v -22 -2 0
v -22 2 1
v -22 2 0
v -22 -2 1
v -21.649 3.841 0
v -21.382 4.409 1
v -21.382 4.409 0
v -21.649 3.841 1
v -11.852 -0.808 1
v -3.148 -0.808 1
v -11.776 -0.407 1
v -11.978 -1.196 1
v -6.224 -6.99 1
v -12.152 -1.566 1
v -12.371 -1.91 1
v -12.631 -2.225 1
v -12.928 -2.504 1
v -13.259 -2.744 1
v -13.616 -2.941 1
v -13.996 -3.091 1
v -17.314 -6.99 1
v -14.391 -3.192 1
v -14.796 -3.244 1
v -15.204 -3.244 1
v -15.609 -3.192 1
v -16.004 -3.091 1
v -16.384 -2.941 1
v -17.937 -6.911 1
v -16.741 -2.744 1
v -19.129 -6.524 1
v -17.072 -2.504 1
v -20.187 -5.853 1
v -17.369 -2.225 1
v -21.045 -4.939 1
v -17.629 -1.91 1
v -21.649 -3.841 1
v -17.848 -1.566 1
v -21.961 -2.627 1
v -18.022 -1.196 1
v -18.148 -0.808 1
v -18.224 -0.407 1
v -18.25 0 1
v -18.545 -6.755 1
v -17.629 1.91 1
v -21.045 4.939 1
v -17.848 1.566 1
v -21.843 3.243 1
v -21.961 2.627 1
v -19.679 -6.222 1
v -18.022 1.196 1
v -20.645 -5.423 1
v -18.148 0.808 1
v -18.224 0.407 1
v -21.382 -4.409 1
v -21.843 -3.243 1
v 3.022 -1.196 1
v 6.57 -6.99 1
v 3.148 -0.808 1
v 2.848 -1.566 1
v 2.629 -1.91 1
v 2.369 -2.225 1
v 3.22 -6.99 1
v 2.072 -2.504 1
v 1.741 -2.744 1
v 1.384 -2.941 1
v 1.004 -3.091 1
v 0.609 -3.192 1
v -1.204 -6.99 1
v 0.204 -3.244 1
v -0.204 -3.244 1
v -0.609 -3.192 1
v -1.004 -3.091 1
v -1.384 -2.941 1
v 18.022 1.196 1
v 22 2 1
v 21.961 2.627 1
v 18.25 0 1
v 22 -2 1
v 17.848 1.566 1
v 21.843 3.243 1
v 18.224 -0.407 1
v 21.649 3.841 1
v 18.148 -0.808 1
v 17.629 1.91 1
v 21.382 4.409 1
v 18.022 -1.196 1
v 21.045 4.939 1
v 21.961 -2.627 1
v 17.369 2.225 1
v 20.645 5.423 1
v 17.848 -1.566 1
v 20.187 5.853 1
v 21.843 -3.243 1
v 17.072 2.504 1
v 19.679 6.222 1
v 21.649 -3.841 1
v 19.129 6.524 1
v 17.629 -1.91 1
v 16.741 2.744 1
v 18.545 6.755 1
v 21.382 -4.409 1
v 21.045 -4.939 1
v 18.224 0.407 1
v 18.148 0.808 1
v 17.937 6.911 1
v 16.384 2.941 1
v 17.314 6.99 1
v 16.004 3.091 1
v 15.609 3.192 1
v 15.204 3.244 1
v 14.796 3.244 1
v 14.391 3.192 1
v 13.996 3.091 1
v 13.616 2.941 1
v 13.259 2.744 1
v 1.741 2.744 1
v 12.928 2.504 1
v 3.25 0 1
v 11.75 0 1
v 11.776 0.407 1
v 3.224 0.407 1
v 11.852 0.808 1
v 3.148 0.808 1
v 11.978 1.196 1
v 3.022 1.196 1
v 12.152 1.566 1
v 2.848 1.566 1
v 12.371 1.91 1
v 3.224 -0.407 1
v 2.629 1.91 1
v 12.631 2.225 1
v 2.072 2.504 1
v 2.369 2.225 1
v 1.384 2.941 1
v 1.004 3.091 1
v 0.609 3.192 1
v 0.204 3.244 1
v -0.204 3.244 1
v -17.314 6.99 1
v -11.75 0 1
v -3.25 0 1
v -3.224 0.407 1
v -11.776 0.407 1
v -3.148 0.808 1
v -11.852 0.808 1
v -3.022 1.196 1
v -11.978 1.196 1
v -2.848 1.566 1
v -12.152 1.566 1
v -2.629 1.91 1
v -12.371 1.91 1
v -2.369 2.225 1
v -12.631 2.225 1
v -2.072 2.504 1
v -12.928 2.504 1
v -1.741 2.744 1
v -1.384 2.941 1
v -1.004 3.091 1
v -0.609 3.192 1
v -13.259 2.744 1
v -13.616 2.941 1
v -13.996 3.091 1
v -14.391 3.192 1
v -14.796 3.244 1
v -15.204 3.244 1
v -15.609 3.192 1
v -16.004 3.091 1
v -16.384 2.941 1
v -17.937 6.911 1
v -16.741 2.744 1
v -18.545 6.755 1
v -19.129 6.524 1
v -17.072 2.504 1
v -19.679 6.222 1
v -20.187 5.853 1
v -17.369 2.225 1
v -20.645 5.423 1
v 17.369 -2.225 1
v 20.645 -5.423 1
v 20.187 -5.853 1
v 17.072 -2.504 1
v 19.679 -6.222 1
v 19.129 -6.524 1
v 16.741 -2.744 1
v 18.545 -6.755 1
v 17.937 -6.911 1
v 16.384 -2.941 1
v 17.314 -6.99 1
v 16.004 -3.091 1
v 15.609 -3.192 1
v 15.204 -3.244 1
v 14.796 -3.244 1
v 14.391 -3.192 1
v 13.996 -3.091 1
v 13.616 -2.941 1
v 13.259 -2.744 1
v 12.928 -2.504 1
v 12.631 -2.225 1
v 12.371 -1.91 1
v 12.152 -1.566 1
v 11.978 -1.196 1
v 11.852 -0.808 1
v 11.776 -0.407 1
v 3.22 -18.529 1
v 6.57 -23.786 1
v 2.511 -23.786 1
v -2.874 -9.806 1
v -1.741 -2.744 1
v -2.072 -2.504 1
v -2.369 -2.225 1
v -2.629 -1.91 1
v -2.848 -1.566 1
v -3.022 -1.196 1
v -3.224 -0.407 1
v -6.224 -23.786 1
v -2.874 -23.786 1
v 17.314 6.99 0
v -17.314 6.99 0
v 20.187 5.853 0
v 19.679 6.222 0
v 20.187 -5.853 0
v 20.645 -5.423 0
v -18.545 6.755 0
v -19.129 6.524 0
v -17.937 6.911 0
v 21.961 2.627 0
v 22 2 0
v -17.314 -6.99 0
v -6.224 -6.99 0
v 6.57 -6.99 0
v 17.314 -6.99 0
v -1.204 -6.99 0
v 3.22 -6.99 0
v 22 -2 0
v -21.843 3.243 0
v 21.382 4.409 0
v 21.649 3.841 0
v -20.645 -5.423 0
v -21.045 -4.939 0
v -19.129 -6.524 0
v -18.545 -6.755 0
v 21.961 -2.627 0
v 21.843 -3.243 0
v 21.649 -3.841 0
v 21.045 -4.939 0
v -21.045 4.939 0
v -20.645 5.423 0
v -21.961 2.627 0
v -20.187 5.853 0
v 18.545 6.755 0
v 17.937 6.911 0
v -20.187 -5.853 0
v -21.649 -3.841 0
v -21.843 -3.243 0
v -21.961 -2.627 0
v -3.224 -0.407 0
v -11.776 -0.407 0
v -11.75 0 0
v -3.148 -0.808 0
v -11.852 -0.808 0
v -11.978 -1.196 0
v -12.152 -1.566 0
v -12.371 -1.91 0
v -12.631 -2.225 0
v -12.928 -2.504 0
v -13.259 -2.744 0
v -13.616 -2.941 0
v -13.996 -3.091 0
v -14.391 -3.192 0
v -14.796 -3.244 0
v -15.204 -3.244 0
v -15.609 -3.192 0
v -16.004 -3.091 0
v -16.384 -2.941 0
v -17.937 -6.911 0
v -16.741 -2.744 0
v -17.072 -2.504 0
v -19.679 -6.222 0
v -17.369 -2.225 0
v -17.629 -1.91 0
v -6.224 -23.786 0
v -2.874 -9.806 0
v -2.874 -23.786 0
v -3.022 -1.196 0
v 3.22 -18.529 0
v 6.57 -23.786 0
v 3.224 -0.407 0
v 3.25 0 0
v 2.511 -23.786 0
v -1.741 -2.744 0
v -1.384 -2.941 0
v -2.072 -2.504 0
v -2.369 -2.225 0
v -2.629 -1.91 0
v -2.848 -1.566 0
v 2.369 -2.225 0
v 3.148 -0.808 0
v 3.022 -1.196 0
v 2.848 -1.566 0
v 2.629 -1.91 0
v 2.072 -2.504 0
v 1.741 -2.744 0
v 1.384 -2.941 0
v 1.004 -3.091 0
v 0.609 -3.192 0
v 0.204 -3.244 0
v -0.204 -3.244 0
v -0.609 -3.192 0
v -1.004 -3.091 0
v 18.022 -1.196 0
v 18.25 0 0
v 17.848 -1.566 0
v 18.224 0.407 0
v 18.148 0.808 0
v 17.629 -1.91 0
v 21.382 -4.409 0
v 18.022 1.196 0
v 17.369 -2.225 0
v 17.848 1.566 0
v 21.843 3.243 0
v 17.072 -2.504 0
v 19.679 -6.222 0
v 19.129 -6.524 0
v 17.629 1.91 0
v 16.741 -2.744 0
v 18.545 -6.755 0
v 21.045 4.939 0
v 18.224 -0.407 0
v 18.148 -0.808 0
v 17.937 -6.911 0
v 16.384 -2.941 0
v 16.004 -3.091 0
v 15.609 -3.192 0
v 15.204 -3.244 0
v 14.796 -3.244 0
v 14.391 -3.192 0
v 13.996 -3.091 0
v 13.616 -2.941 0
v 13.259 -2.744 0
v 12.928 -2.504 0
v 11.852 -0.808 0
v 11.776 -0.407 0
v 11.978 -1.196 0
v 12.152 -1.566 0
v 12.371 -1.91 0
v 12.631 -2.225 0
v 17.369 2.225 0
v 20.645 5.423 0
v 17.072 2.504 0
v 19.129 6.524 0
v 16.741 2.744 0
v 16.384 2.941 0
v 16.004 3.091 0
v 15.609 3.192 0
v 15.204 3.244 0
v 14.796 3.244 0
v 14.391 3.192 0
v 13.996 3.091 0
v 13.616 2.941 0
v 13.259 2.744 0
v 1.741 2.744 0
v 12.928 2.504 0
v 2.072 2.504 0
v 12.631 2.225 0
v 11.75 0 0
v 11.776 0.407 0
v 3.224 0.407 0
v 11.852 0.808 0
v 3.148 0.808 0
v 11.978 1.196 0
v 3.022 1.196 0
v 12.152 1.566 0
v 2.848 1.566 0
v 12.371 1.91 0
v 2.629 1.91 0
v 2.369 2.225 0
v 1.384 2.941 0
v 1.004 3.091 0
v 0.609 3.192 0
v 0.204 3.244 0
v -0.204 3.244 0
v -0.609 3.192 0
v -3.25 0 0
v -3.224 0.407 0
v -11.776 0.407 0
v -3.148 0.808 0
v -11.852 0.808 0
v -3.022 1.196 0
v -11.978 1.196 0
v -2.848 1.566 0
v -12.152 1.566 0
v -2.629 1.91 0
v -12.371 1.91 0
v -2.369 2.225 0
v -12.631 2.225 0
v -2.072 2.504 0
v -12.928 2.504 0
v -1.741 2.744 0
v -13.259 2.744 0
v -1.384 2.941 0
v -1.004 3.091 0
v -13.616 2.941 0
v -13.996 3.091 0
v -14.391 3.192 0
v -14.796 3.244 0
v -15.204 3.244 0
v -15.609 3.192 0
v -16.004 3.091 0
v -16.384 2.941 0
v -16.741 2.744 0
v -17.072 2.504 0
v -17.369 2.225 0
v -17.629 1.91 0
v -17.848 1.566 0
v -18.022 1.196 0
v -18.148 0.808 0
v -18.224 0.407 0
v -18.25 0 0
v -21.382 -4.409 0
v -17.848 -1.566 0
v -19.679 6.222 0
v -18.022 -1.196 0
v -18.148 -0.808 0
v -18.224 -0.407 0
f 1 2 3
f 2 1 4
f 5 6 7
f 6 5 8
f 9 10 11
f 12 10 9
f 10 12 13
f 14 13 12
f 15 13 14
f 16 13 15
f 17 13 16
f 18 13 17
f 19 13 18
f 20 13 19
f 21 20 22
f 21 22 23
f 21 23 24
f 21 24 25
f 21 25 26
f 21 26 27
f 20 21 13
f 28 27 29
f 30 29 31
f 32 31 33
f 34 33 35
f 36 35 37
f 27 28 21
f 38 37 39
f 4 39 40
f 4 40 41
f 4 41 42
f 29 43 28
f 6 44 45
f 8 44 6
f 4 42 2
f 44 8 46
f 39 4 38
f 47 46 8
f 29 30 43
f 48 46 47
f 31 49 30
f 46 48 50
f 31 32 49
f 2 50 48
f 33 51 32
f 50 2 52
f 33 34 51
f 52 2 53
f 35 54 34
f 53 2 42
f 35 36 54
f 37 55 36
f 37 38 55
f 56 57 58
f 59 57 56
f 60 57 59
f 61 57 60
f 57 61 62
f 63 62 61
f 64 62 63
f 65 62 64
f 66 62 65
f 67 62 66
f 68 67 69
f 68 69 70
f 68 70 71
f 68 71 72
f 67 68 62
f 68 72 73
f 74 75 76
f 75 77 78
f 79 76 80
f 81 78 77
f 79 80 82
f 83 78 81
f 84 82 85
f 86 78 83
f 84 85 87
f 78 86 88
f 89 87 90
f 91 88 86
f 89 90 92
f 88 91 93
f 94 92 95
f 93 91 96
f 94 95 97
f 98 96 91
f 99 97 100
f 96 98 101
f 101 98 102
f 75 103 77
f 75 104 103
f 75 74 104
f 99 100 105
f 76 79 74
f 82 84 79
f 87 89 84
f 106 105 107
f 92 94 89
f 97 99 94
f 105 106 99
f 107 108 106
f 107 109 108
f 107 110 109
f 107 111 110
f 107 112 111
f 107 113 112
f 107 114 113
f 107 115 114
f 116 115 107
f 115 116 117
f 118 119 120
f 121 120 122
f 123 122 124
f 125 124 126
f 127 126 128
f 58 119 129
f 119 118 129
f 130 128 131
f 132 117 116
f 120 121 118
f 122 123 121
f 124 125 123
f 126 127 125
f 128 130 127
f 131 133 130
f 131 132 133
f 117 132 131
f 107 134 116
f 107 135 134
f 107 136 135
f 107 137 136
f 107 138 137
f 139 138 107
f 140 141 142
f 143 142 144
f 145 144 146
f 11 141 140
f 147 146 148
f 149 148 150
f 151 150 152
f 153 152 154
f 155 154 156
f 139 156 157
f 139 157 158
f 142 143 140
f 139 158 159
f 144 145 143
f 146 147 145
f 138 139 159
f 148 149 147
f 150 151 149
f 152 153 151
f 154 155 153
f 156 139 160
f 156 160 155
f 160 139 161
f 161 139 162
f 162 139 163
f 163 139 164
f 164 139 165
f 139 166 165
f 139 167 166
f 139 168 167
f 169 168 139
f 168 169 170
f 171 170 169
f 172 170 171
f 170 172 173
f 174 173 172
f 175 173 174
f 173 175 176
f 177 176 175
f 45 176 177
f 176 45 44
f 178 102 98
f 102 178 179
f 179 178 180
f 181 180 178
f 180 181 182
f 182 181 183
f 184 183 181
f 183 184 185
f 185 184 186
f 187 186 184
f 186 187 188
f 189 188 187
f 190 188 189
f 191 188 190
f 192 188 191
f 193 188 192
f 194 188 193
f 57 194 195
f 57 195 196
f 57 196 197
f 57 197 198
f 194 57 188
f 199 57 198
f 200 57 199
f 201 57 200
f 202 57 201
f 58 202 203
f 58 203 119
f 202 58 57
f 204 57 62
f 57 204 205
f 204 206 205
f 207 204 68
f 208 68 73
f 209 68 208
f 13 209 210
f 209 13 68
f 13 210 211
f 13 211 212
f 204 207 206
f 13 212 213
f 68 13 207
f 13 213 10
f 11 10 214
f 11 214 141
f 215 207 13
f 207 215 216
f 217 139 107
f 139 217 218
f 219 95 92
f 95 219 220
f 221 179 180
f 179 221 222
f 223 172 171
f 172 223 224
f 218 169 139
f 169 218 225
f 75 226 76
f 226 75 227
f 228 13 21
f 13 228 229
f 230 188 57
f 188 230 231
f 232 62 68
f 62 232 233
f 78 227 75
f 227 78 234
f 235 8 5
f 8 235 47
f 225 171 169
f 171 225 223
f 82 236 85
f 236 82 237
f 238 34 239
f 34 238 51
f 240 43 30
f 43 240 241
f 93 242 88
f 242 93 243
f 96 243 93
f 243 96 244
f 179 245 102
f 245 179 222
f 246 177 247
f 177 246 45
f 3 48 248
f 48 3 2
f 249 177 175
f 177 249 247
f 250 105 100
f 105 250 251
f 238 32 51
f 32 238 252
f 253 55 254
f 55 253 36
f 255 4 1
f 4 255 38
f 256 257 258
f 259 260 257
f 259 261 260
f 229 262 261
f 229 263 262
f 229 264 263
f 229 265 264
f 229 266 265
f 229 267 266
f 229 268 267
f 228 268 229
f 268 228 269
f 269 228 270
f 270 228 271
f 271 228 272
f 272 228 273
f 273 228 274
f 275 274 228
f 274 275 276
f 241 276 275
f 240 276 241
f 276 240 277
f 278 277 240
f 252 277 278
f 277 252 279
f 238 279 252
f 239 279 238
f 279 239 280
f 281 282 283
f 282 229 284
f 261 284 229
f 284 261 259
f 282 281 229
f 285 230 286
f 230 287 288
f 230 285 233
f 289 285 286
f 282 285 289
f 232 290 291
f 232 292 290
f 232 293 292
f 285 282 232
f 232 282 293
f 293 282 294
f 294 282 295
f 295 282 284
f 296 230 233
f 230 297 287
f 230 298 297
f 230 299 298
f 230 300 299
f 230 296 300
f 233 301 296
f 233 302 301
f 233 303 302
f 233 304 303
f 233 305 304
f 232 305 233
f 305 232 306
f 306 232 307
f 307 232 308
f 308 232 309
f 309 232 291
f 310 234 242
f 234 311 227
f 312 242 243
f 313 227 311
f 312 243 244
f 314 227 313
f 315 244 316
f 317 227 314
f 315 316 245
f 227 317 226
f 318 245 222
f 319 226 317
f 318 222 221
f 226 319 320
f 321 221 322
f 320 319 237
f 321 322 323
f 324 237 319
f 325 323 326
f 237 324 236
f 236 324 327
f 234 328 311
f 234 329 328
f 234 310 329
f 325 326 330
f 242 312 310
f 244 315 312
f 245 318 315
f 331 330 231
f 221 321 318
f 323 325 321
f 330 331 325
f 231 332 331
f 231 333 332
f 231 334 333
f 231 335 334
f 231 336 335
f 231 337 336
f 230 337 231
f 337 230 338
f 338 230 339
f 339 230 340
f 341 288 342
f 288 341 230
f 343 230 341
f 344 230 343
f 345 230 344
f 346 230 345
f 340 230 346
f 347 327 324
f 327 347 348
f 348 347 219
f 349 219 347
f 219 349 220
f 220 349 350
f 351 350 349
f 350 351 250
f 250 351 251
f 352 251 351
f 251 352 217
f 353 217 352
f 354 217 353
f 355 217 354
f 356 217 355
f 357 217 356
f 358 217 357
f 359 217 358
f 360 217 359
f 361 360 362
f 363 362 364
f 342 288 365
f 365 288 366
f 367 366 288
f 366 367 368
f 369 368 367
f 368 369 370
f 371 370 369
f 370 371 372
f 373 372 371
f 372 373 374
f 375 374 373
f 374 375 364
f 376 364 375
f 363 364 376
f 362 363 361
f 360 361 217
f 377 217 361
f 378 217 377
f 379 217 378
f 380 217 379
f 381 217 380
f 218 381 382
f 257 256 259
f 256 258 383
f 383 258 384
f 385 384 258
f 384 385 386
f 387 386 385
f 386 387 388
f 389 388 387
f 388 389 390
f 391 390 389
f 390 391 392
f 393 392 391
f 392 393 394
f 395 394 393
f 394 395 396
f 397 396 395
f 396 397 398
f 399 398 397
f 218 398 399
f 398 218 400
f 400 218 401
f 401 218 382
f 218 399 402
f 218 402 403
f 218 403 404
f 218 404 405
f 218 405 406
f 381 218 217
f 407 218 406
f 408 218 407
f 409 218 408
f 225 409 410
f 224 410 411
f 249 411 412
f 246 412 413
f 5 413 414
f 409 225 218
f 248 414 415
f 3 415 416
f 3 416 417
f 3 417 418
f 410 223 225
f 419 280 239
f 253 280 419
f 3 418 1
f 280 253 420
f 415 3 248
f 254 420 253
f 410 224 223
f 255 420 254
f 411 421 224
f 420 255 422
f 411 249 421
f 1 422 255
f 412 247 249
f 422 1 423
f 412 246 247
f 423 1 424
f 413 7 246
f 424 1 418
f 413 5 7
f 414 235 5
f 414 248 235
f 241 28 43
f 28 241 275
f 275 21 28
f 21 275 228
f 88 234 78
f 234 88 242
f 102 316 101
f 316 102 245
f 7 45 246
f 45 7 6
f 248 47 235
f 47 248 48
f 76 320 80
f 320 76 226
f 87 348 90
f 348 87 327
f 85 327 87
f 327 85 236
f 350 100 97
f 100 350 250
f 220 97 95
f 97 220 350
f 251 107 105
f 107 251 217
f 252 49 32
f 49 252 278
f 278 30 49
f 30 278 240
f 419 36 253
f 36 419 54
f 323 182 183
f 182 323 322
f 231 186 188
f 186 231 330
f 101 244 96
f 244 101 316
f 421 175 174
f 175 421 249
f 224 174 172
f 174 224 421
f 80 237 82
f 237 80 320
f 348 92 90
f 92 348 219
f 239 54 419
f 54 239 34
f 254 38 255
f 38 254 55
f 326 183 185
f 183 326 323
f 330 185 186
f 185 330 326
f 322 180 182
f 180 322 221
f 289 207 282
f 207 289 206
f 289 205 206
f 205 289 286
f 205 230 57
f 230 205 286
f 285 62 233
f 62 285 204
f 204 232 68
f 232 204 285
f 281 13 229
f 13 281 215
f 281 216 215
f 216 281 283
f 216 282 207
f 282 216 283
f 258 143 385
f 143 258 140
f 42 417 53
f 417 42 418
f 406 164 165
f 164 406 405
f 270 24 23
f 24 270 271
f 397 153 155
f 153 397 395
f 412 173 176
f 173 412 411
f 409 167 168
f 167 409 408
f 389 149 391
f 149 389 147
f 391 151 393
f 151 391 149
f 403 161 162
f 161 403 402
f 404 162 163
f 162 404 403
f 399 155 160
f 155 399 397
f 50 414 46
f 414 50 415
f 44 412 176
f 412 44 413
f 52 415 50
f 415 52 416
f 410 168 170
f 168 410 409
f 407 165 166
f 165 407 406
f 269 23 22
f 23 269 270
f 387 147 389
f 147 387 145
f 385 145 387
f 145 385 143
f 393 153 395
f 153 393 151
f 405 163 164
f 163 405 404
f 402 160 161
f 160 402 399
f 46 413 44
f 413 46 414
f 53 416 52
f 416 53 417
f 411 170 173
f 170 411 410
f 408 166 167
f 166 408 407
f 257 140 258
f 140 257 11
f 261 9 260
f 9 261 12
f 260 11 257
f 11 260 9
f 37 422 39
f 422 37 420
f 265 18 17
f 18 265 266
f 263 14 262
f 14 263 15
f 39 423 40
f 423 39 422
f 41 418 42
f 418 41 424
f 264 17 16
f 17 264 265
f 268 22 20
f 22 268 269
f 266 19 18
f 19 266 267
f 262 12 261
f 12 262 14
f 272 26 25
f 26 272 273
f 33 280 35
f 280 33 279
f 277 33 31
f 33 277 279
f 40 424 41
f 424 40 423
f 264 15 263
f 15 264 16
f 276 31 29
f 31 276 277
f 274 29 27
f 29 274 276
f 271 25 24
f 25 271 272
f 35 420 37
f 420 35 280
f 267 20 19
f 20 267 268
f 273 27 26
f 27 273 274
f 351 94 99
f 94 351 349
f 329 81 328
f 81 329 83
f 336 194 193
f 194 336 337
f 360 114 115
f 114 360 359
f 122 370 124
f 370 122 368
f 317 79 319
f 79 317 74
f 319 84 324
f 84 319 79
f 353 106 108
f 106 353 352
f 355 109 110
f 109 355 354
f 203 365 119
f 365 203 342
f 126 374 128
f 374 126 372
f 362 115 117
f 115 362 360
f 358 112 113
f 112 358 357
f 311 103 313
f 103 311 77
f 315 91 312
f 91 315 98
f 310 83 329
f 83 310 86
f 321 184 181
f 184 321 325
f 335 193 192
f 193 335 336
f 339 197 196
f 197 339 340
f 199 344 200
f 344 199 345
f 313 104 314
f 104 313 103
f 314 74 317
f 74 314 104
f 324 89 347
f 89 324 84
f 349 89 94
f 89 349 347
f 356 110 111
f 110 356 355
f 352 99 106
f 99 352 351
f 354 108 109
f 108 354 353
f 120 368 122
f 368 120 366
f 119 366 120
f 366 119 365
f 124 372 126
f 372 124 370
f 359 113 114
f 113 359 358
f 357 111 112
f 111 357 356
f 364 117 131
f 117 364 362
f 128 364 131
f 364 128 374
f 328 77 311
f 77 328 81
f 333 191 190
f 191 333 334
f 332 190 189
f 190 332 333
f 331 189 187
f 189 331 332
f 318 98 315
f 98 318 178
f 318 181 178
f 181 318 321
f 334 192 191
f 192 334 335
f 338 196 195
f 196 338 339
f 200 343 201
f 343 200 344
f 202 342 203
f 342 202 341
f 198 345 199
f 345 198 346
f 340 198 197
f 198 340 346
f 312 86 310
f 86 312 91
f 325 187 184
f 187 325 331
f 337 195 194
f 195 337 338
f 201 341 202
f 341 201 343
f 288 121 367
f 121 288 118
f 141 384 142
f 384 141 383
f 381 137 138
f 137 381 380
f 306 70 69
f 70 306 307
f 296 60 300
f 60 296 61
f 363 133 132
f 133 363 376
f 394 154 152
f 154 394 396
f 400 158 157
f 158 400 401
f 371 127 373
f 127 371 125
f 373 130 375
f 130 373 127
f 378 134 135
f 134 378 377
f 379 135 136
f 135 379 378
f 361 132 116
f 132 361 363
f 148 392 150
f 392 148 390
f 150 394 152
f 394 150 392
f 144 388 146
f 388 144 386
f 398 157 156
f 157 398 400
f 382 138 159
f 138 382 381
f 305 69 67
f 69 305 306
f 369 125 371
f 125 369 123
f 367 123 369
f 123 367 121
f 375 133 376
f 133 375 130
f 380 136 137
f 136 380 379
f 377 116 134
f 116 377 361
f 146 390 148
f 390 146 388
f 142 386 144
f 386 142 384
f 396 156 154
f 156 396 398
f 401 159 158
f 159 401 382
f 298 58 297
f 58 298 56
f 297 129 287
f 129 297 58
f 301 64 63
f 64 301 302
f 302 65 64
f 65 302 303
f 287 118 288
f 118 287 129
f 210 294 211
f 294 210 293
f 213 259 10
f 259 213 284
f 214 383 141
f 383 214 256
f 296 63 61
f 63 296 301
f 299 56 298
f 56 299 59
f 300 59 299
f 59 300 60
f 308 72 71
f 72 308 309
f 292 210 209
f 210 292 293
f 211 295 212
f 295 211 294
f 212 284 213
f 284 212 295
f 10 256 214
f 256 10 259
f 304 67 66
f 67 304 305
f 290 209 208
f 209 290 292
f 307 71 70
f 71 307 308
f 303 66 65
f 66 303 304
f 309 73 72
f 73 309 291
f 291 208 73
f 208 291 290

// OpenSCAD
$fn = 50;


difference() {
	union() {
		translate(v = [0, 0, 0]) {
			rotate(a = [0, 0, 0]) {
				hull() {
					translate(v = [-17.0000000000, 2.0000000000, 0]) {
						rotate(a = [0, 0, 0]) {
							translate(v = [0, 0, 0]) {
								rotate(a = [0, 0, 0]) {
									cylinder(h = 1, r = 5);
								}
							}
						}
					}
					translate(v = [17.0000000000, 2.0000000000, 0]) {
						rotate(a = [0, 0, 0]) {
							translate(v = [0, 0, 0]) {
								rotate(a = [0, 0, 0]) {
									cylinder(h = 1, r = 5);
								}
							}
						}
					}
					translate(v = [-17.0000000000, -2.0000000000, 0]) {
						rotate(a = [0, 0, 0]) {
							translate(v = [0, 0, 0]) {
								rotate(a = [0, 0, 0]) {
									cylinder(h = 1, r = 5);
								}
							}
						}
					}
					translate(v = [17.0000000000, -2.0000000000, 0]) {
						rotate(a = [0, 0, 0]) {
							translate(v = [0, 0, 0]) {
								rotate(a = [0, 0, 0]) {
									cylinder(h = 1, r = 5);
								}
							}
						}
					}
				}
			}
		}
		translate(v = [0, -5, 0]) {
			rotate(a = [0, 0, 0]) {
				linear_extrude(height = 1) {
					text(font = "DejaVu Sans Mono:style=Bold", halign = "center", size = 19.0000000000, text = "N", valign = "top");
				}
			}
		}
	}
	union() {
		translate(v = [-15.0000000000, 0.0000000000, -125.0000000000]) {
			rotate(a = [0, 0, 0]) {
				cylinder(h = 250, r = 3.2500000000);
			}
		}
		translate(v = [15.0000000000, 0.0000000000, -125.0000000000]) {
			rotate(a = [0, 0, 0]) {
				cylinder(h = 250, r = 3.2500000000);
			}
		}
		translate(v = [15.0000000000, 0.0000000000, -125.0000000000]) {
			rotate(a = [0, 0, 0]) {
				cylinder(h = 250, r = 3.2500000000);
			}
		}
		translate(v = [0, 0, -125.0000000000]) {
			rotate(a = [0, 0, 0]) {
				cylinder(h = 250, r = 3.2500000000);
			}
		}
	}
}
